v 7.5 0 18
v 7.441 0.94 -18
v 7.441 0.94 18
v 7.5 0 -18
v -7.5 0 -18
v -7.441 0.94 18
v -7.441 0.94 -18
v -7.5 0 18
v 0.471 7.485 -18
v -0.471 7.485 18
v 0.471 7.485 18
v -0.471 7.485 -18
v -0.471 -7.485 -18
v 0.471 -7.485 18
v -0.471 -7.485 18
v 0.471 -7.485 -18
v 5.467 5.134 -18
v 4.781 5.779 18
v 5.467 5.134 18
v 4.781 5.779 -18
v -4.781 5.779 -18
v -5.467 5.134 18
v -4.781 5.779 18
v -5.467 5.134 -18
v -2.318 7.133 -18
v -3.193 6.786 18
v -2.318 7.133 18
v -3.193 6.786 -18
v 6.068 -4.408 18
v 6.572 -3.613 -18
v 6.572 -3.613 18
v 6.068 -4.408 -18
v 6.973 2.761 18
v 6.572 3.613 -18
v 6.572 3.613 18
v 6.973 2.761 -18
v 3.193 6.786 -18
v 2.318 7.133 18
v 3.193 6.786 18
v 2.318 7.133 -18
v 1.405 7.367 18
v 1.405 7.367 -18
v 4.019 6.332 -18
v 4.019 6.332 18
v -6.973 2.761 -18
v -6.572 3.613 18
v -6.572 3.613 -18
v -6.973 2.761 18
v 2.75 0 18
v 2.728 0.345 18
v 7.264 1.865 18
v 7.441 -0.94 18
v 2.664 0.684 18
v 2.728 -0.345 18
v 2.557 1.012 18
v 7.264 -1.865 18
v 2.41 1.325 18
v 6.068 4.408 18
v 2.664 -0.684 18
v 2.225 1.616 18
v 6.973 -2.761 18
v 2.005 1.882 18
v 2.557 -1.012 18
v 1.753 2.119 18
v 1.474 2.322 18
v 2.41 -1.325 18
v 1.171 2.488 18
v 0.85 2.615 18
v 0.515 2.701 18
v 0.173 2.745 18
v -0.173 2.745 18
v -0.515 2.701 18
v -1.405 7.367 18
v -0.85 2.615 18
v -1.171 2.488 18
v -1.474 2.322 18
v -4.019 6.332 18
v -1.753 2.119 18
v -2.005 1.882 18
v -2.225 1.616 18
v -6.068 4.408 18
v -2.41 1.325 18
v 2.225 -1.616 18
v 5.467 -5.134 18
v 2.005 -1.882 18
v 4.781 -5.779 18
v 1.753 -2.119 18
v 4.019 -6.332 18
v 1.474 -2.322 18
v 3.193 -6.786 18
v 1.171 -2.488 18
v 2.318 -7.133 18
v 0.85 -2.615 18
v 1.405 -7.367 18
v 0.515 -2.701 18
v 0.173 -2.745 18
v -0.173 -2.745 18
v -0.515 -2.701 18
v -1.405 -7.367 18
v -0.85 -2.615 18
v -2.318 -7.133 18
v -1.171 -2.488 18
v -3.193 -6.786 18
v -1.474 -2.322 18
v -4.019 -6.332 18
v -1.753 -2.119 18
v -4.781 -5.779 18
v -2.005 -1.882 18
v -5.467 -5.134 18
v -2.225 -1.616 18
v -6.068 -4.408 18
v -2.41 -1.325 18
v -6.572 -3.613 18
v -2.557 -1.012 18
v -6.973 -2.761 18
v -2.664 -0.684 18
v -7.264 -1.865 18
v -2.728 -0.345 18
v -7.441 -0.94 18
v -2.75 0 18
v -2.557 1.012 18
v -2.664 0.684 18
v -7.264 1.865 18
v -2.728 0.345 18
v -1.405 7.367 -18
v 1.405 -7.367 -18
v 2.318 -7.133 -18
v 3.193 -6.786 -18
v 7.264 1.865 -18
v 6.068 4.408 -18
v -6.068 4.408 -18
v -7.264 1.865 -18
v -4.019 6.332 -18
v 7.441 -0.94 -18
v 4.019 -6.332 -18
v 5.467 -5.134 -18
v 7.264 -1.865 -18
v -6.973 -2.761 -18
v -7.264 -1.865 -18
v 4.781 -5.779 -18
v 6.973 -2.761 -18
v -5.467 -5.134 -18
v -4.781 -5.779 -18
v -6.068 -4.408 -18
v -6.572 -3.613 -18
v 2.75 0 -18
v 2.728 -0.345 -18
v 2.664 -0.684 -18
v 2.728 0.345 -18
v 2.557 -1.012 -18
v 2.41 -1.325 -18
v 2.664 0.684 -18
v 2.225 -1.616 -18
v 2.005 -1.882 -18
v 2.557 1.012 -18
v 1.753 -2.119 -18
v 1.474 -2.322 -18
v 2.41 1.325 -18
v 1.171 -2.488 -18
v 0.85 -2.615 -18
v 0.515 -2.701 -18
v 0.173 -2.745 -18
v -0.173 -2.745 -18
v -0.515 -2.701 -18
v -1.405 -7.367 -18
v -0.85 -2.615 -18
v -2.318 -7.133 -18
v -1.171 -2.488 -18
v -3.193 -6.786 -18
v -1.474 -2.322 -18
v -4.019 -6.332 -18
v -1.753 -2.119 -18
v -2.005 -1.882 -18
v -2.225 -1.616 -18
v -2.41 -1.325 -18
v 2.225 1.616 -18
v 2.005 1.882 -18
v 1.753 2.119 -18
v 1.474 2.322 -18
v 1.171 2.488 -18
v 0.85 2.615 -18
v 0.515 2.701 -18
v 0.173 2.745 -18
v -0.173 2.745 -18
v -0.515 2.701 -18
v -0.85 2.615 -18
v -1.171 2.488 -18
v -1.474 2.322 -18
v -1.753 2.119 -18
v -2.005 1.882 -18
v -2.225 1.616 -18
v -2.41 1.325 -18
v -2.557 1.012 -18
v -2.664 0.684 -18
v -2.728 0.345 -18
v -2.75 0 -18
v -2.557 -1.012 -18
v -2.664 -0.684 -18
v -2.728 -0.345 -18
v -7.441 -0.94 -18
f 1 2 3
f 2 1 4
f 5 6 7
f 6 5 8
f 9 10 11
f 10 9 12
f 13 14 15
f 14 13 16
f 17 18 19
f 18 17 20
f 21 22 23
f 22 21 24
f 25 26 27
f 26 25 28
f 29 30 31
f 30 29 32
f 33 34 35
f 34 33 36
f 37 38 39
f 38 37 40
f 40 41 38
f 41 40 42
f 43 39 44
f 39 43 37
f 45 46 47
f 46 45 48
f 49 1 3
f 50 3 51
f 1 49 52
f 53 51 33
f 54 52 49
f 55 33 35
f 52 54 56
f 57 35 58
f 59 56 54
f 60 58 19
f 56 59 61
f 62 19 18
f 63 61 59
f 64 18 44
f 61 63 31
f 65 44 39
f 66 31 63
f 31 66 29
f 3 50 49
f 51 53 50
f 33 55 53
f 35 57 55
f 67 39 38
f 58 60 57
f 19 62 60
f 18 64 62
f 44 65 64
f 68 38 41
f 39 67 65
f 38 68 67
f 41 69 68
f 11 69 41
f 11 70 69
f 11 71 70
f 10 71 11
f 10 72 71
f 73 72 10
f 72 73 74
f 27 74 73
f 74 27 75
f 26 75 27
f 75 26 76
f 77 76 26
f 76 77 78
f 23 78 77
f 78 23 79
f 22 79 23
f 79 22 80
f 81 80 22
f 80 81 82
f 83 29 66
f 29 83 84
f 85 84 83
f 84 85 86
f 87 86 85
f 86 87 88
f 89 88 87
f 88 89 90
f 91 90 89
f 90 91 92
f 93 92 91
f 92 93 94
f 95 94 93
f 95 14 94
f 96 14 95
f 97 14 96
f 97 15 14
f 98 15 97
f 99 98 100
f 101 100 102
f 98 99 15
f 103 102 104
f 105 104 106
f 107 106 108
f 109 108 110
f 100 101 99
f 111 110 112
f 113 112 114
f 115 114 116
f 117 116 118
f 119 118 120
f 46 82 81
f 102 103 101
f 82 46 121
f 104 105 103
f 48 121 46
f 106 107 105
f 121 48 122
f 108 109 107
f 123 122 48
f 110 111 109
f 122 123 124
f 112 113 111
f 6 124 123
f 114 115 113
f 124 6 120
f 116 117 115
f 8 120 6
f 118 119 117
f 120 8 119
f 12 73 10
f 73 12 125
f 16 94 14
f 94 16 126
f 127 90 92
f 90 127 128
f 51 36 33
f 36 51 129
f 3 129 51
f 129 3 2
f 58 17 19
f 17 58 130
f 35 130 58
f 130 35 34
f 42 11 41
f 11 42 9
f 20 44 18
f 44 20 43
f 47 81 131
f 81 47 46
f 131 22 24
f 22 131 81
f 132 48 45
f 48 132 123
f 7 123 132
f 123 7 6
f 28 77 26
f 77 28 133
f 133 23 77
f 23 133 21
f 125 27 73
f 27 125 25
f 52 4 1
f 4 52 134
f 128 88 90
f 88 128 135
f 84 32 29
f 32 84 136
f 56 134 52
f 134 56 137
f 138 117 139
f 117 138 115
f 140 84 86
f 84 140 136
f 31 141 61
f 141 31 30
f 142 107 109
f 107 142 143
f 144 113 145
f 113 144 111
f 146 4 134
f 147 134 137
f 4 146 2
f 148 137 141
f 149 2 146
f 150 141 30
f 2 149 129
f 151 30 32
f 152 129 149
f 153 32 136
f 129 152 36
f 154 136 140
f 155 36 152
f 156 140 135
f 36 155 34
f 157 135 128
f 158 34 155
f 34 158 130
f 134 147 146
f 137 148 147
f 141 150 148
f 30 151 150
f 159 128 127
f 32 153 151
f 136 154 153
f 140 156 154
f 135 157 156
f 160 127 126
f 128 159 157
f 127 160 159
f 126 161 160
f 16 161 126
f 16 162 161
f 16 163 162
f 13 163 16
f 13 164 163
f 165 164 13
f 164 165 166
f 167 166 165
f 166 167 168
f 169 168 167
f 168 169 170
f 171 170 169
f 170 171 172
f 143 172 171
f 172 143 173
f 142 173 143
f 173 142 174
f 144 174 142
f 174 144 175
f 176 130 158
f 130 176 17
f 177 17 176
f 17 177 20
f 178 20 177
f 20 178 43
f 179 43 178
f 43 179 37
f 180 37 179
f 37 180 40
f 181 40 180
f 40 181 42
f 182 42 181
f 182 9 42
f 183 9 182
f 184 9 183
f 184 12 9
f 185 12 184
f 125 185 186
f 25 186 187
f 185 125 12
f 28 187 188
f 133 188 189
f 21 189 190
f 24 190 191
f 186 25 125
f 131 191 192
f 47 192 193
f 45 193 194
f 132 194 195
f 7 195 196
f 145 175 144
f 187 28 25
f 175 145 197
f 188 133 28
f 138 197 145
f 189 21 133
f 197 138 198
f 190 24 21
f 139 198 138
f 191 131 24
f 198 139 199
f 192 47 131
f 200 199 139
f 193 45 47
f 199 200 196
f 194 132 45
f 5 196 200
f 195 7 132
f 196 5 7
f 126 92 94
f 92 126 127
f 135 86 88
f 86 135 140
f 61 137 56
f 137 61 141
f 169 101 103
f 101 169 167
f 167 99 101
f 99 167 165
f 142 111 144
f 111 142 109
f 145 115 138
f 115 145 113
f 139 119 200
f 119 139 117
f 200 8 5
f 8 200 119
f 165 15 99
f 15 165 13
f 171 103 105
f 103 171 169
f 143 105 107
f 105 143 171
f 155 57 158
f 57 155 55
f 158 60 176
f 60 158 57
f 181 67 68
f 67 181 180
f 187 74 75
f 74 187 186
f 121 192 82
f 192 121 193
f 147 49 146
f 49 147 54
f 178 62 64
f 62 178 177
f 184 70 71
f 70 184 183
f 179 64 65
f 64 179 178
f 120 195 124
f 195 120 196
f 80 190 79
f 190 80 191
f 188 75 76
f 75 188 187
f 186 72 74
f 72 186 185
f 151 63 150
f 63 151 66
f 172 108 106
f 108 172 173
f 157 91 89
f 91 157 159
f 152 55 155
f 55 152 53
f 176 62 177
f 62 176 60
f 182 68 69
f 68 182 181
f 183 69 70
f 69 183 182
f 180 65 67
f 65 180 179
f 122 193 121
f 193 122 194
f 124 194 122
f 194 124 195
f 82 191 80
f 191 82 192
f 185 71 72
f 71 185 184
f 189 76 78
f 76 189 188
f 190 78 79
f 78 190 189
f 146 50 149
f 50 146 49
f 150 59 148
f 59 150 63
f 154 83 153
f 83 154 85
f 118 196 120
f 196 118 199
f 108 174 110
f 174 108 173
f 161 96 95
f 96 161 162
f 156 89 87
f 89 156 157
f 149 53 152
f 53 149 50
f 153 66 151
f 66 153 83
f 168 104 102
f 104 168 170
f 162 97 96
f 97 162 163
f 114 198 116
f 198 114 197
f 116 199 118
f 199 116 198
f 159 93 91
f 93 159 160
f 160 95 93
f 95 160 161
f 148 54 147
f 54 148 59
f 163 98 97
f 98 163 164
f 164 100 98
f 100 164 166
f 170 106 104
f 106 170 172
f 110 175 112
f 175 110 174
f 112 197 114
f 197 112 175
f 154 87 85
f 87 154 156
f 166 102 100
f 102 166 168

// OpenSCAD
$fn = 50;


difference() {
	union() {
		translate(v = [0, 0, -18.0000000000]) {
			cylinder(h = 36, r = 7.5000000000);
		}
	}
	union() {
		translate(v = [0, 0, -100.0000000000]) {
			cylinder(h = 200, r = 2.7500000000);
		}
	}
}
